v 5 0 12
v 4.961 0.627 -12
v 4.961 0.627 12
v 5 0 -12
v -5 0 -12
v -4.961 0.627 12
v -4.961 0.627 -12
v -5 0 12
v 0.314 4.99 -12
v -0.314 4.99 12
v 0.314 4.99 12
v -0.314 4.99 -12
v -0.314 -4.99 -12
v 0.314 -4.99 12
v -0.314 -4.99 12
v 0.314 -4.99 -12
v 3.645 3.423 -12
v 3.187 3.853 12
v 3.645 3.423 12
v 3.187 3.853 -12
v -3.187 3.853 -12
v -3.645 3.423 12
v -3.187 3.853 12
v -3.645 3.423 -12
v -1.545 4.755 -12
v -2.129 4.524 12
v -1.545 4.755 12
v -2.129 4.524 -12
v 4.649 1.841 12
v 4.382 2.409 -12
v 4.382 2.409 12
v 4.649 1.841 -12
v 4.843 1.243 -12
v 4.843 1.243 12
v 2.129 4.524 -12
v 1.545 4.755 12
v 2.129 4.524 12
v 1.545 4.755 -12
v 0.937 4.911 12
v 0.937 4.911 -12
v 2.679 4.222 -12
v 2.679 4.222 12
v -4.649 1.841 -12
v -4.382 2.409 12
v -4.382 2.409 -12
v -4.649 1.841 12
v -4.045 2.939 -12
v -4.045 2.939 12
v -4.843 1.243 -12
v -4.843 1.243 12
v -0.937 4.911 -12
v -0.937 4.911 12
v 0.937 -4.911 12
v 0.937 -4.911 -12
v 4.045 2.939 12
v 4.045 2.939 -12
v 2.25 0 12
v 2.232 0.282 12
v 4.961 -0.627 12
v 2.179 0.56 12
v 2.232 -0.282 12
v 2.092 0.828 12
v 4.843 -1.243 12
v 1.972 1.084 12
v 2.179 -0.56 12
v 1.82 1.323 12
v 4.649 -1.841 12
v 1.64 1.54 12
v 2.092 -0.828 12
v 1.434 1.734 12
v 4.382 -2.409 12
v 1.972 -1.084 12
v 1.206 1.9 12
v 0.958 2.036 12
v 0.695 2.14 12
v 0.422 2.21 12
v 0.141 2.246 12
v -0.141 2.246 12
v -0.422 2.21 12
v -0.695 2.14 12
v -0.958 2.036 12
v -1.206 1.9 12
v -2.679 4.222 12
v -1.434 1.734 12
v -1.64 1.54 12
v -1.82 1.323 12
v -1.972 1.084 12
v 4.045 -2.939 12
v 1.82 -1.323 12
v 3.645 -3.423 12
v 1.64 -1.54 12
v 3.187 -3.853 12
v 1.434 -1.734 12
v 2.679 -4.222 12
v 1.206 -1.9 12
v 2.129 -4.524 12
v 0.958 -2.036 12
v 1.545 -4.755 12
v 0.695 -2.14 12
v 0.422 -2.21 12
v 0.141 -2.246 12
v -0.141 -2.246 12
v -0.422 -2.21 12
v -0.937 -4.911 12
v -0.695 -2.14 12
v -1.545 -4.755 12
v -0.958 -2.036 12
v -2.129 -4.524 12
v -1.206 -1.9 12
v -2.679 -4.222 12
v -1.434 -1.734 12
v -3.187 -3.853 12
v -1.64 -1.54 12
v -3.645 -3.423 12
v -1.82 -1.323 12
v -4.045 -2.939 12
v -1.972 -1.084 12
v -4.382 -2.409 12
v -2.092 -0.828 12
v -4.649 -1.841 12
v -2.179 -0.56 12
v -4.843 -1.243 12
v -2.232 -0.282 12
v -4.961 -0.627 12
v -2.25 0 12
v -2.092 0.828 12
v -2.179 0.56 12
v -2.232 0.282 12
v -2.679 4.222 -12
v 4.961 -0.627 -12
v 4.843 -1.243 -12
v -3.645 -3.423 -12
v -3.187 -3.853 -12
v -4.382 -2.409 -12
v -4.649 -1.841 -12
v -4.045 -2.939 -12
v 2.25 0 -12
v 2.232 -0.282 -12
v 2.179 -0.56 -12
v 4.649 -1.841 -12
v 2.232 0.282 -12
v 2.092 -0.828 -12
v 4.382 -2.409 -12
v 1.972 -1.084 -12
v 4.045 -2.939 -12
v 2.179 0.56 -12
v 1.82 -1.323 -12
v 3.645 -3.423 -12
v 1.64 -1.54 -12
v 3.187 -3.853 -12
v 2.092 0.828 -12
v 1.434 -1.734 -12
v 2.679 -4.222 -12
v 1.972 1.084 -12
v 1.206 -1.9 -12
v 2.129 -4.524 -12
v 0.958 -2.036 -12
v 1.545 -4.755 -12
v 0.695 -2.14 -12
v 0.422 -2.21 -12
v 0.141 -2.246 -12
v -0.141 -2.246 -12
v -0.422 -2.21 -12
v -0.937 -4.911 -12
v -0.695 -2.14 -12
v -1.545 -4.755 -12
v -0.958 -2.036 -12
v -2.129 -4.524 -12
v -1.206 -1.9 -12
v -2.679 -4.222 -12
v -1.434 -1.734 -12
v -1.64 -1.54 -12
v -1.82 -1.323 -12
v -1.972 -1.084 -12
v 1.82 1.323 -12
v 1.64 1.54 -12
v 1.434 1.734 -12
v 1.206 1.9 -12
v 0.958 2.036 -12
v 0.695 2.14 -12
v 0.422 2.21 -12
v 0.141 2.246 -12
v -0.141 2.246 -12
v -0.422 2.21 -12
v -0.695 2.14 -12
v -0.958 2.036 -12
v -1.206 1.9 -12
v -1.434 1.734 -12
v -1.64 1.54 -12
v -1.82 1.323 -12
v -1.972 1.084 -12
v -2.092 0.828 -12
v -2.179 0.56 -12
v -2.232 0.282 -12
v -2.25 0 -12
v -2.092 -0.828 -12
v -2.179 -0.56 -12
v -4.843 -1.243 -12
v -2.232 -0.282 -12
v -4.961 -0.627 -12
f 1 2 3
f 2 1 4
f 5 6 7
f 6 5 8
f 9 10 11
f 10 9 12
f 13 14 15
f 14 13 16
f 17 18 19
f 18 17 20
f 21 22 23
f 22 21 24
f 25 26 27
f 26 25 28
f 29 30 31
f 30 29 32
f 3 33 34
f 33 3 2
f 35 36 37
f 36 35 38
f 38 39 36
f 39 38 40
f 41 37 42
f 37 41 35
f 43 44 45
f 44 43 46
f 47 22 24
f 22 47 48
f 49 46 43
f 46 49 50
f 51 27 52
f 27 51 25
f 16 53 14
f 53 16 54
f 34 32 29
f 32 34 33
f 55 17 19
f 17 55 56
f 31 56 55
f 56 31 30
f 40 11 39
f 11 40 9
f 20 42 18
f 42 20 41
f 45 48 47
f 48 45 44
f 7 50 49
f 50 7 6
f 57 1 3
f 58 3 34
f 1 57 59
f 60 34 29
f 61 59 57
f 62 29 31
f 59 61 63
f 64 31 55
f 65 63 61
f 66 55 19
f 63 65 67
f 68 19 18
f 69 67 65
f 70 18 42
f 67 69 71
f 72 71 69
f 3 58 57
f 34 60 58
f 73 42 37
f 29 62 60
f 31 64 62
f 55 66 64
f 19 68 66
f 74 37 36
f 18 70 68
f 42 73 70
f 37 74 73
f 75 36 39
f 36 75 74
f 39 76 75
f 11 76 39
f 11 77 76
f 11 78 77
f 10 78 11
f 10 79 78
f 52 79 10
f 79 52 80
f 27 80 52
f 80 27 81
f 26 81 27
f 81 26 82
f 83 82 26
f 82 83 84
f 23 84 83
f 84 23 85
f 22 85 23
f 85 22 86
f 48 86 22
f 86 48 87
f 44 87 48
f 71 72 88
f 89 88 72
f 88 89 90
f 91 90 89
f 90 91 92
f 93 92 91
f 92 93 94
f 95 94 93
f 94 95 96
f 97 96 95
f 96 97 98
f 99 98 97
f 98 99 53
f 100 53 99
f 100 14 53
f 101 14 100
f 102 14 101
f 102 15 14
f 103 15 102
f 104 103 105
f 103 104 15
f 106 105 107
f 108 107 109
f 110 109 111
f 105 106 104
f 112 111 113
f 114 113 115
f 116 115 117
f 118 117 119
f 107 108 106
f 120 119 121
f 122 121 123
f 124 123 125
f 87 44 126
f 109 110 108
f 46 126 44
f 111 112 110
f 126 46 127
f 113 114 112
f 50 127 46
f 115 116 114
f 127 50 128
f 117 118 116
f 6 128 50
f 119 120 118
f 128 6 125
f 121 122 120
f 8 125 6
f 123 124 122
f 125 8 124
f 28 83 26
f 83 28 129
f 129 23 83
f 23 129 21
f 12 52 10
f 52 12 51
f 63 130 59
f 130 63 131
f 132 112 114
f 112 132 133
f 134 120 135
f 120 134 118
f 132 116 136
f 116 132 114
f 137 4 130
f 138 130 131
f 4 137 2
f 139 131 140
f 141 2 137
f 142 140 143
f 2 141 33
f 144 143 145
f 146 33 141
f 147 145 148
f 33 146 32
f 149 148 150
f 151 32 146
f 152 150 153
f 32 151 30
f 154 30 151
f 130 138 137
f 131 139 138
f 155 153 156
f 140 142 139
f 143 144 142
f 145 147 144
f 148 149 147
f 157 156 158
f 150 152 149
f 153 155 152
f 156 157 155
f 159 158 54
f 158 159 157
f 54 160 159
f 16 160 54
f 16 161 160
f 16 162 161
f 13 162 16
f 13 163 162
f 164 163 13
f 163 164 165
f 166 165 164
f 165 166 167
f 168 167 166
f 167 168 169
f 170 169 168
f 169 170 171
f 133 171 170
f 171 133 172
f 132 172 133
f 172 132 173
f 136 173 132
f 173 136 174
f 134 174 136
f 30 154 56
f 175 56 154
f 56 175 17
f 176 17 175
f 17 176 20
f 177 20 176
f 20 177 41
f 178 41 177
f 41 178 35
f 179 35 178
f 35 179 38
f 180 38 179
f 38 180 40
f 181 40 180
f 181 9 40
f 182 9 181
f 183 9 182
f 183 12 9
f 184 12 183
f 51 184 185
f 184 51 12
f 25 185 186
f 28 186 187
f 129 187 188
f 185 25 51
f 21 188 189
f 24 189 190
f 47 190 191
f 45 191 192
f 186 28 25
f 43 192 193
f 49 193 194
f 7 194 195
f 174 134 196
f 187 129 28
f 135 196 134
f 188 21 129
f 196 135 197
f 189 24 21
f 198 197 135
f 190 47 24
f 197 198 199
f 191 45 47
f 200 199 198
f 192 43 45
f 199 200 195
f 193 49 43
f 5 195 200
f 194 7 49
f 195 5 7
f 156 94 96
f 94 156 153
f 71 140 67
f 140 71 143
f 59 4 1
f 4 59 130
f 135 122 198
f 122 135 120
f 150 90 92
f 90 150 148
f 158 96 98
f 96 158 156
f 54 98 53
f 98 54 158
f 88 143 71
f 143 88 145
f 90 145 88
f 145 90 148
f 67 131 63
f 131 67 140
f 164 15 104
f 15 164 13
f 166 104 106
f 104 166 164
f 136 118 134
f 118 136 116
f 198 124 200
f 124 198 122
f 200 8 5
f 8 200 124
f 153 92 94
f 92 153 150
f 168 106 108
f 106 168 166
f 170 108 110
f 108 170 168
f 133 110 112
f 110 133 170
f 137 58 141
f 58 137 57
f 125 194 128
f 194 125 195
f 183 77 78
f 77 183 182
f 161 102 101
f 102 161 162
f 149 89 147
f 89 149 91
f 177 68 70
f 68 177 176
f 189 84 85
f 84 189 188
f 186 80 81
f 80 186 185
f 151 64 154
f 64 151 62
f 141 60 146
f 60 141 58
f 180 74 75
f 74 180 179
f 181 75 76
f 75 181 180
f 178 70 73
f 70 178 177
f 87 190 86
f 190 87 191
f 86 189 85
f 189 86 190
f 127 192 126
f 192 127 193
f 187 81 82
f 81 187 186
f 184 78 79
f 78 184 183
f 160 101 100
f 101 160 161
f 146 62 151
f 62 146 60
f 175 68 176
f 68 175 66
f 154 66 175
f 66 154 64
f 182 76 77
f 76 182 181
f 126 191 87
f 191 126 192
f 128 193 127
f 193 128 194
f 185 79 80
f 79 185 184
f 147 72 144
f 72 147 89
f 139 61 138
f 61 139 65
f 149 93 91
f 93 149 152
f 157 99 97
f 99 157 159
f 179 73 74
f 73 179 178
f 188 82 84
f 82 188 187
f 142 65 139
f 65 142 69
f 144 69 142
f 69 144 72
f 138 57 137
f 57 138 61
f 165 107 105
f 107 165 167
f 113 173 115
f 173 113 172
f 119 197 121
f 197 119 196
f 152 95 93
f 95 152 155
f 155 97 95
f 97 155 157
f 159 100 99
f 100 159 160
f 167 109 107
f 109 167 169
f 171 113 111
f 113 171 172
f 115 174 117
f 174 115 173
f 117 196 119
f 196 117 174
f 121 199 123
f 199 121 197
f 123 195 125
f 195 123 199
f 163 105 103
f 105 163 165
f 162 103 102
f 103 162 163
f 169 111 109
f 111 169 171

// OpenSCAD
$fn = 50;


difference() {
	union() {
		translate(v = [0, 0, -12.0000000000]) {
			cylinder(h = 24, r = 5.0000000000);
		}
	}
	union() {
		translate(v = [0, 0, -100.0000000000]) {
			cylinder(h = 200, r = 2.2500000000);
		}
	}
}
